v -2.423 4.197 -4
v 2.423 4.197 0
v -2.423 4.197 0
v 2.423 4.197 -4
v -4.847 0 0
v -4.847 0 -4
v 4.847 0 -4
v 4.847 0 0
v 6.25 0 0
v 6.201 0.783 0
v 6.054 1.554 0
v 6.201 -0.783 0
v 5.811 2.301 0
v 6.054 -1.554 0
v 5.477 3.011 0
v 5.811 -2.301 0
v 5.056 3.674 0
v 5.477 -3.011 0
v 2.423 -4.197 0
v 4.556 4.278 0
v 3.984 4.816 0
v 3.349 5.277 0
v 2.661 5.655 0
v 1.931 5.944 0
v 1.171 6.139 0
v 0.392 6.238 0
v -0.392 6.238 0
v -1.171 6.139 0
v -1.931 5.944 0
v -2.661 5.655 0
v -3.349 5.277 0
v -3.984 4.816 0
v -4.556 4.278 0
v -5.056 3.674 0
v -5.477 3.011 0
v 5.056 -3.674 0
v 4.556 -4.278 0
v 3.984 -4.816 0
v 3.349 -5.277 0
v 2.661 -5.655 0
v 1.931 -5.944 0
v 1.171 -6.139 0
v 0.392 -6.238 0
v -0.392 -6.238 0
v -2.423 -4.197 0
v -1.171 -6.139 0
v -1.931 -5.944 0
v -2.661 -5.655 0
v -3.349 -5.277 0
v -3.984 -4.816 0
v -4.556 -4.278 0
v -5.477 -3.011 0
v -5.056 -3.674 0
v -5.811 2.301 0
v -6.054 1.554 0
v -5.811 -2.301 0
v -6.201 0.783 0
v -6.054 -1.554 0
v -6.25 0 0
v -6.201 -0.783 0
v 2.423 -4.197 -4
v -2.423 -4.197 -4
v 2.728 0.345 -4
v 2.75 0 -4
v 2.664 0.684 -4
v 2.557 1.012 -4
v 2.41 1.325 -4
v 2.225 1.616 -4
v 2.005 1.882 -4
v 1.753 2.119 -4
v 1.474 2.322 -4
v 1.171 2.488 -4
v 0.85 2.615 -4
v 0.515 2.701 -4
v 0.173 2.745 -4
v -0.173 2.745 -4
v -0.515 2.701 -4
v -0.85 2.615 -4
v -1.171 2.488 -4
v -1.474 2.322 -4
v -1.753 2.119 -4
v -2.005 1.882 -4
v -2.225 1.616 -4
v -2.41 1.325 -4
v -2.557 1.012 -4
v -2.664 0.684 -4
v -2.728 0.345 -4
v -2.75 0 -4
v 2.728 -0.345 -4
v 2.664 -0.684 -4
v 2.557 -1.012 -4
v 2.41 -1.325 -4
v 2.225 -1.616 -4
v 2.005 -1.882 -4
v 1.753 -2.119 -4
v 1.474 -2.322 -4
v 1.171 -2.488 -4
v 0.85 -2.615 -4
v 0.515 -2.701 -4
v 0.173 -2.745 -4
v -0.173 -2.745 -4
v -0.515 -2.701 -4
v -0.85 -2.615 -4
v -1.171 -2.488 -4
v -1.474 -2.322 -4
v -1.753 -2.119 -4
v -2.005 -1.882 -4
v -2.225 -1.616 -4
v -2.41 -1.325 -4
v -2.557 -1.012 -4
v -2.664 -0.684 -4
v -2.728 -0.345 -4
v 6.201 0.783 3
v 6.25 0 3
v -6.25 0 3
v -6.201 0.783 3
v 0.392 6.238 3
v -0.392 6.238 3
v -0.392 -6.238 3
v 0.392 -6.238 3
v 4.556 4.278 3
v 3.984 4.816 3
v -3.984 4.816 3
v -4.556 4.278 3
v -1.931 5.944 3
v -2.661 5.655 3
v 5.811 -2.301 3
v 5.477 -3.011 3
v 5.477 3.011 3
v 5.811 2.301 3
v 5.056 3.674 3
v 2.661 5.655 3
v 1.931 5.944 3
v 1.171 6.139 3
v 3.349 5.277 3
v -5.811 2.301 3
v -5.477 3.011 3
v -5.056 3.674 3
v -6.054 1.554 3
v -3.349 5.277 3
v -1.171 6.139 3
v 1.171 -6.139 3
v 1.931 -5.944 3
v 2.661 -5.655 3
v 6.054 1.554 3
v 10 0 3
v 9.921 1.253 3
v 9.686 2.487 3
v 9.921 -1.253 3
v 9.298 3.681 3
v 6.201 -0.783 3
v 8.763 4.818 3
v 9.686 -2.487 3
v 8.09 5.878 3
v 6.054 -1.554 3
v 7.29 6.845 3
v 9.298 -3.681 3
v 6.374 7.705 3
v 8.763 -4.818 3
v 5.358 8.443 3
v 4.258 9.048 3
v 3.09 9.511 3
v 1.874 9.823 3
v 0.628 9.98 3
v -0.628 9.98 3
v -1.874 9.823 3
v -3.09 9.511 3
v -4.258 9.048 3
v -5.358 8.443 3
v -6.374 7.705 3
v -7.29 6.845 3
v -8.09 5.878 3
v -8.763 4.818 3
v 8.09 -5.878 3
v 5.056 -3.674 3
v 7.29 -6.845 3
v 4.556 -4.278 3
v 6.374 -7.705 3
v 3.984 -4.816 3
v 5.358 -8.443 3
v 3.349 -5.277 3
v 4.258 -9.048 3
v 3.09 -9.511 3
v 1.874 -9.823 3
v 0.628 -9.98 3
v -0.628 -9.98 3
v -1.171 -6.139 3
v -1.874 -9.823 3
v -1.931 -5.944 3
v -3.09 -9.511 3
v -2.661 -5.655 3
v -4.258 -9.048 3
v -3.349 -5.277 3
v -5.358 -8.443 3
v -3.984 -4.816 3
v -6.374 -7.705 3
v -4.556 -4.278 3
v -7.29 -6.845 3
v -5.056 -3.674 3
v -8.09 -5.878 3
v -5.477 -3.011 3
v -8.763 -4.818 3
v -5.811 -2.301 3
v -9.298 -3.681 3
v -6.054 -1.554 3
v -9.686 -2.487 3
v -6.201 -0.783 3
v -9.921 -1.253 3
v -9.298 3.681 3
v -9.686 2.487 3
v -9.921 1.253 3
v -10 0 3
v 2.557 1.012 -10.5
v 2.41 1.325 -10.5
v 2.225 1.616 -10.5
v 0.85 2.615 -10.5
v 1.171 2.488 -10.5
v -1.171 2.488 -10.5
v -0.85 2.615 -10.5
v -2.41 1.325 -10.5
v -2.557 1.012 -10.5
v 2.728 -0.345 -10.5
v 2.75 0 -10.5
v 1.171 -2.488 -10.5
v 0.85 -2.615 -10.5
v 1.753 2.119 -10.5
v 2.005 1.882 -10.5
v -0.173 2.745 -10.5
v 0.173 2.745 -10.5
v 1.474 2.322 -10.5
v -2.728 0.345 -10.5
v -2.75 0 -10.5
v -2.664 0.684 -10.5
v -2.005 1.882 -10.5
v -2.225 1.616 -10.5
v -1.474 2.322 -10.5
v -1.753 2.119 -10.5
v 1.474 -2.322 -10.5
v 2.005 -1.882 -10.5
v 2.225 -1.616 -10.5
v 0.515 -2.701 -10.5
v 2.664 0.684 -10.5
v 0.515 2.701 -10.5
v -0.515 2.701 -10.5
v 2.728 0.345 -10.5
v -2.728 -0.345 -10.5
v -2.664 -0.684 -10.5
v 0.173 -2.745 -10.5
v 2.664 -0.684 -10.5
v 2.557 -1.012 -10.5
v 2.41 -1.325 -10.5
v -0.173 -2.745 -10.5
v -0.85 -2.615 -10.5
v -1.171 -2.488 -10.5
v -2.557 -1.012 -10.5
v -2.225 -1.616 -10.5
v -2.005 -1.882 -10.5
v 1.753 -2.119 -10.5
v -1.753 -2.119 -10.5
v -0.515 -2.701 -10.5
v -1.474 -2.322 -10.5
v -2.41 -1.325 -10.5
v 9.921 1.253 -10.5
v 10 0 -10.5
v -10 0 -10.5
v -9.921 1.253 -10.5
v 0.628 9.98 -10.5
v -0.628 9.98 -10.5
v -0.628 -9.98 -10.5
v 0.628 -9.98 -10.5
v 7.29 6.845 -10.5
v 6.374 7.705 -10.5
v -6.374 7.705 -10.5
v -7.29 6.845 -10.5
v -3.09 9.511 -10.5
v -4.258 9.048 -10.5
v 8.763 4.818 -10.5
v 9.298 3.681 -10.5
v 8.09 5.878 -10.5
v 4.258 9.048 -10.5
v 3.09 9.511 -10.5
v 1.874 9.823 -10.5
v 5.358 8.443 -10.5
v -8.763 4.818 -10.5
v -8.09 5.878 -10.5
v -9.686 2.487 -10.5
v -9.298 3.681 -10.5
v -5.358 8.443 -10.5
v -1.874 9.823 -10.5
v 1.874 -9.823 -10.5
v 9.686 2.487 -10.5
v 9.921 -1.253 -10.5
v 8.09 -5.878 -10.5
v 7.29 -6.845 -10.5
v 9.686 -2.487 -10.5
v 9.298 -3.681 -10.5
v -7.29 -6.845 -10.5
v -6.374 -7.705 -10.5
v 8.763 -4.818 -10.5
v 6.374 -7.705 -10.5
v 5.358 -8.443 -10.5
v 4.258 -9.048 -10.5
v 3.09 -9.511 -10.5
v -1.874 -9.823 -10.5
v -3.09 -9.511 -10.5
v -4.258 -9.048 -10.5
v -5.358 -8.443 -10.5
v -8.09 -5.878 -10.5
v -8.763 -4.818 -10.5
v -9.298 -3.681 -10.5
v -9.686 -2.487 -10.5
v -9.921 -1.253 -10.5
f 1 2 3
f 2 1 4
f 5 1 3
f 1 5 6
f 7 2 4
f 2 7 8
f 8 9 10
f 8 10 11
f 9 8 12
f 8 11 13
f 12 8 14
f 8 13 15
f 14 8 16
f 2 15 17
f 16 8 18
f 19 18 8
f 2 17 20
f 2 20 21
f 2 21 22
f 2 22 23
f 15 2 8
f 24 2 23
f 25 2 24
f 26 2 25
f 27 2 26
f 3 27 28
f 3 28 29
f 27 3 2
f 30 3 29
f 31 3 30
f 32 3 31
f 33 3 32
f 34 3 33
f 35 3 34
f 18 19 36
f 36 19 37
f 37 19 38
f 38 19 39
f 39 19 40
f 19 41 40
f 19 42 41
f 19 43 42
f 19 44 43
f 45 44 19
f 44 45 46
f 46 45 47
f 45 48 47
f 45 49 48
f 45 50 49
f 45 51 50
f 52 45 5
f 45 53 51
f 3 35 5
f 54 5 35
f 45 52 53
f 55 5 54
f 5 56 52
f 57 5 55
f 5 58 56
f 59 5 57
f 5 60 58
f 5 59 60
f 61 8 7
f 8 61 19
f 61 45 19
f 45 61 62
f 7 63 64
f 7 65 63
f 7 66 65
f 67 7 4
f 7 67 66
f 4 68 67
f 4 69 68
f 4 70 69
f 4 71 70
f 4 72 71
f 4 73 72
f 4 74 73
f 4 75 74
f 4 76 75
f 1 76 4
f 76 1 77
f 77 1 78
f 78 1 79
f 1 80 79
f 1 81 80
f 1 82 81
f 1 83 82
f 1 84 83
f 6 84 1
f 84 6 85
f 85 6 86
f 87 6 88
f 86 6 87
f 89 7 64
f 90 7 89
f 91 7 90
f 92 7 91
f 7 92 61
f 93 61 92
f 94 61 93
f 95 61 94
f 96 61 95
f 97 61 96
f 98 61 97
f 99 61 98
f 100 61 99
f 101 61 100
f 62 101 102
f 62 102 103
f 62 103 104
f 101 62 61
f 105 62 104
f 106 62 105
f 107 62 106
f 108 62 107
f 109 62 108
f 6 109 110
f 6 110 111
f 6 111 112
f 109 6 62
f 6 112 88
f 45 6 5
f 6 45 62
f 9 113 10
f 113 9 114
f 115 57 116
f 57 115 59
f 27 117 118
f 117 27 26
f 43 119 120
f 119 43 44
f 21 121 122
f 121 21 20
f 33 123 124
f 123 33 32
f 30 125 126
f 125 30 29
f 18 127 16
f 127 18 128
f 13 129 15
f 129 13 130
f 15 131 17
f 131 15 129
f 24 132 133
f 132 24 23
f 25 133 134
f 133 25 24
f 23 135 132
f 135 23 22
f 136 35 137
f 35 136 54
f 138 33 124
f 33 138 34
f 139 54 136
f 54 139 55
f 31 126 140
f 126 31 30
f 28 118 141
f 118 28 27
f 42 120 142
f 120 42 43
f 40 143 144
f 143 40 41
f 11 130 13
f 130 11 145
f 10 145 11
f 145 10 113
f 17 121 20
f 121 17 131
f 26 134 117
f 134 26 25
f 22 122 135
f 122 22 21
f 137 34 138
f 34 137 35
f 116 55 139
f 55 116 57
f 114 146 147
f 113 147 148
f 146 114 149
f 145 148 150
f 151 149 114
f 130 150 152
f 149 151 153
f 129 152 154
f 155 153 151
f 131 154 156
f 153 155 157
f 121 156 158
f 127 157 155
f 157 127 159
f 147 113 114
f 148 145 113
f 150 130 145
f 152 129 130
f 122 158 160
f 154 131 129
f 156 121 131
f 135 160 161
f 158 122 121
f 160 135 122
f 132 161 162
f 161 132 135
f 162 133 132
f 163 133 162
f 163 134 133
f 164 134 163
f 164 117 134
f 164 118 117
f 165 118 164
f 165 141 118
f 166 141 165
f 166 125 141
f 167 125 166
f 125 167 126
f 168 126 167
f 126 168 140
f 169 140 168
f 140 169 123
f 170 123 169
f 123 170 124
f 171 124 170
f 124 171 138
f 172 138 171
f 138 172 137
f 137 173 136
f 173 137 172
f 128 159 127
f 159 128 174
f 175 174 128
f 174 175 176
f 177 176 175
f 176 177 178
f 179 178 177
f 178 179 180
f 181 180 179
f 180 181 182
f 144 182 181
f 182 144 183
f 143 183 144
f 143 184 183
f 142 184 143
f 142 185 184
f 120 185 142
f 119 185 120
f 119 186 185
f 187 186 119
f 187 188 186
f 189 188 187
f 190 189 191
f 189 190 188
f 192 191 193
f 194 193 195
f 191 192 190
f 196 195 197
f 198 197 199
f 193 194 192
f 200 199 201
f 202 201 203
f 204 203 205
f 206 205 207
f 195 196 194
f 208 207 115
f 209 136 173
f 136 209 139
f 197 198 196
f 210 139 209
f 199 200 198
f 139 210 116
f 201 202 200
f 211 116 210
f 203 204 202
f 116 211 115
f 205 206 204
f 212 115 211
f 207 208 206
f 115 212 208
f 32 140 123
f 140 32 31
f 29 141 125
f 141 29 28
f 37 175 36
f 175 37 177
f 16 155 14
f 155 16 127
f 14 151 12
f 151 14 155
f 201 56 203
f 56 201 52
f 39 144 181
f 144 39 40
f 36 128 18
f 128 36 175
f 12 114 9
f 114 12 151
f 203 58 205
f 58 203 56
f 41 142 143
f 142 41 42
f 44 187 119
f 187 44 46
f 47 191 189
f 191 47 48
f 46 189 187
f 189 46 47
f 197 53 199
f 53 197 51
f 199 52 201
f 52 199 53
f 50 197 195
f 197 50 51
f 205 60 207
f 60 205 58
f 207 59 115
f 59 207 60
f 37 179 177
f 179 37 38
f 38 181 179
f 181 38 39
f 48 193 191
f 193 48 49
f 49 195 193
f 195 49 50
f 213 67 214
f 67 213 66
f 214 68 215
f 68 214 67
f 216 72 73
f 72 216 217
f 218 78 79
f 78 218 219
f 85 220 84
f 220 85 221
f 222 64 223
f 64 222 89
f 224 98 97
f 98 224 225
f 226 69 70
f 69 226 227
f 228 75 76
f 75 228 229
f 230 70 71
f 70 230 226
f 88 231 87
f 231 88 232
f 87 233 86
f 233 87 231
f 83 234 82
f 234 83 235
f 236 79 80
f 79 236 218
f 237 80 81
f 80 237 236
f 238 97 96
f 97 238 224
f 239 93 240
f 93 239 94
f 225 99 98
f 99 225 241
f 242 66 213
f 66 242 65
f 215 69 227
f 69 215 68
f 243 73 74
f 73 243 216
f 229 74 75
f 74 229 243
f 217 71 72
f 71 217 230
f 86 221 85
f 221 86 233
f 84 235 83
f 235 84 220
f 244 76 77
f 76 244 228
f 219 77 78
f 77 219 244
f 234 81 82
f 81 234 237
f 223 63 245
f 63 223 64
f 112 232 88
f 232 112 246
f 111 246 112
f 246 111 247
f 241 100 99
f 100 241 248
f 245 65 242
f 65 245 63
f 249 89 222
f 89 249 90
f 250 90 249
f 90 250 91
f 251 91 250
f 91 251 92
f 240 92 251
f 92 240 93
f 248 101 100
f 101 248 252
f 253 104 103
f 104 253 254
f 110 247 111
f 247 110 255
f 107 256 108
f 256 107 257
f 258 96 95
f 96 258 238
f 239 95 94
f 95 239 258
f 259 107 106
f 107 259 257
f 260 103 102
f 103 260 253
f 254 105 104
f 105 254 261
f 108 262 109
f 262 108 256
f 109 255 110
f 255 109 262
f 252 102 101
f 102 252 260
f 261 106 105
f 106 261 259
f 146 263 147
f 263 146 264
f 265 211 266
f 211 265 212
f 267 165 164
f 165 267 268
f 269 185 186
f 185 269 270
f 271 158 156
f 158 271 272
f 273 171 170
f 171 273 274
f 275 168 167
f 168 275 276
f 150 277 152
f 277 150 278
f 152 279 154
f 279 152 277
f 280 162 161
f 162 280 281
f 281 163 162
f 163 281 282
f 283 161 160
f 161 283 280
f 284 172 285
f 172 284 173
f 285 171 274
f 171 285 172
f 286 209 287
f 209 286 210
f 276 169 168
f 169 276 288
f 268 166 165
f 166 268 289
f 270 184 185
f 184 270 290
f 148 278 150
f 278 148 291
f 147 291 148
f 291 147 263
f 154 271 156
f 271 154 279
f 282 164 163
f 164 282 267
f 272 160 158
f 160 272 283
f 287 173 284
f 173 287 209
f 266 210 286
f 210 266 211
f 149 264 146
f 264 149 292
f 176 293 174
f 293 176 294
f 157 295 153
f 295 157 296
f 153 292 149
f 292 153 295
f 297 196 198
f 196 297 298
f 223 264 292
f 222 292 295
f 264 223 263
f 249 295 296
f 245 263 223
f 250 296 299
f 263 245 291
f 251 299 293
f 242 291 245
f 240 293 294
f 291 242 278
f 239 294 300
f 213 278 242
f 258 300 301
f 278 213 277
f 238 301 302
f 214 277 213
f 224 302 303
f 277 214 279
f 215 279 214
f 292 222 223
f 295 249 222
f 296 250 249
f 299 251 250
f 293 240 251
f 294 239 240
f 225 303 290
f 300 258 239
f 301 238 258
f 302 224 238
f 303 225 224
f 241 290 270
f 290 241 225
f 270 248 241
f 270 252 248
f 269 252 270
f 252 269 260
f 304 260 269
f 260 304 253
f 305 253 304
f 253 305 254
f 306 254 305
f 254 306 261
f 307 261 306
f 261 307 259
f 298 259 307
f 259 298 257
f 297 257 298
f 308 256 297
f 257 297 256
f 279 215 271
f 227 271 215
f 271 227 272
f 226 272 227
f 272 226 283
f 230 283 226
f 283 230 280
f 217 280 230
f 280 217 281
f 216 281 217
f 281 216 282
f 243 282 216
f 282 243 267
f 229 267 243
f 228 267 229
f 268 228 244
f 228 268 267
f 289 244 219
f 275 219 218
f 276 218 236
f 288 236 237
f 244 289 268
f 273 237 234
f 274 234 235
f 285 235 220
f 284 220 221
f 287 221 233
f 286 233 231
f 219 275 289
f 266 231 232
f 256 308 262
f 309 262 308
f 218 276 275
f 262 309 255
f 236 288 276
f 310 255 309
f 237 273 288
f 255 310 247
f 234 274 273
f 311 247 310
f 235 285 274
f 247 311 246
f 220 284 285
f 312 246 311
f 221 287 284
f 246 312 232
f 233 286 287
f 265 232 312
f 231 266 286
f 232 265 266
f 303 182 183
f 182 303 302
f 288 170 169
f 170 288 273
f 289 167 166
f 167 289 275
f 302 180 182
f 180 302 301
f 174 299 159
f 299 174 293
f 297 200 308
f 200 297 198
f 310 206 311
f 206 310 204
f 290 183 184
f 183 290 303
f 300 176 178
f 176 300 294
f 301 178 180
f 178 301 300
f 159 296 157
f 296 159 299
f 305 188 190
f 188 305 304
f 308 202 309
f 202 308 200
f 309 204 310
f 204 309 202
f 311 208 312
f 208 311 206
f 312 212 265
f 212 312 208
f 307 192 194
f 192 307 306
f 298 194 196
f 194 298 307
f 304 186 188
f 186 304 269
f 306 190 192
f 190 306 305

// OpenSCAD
$fn = 50;


difference() {
	union() {
		translate(v = [0, 0, -10.5000000000]) {
			cylinder(h = 13.5000000000, r = 10.0000000000);
		}
	}
	union() {
		translate(v = [0, 0, 0]) {
			rotate(a = [0, 0, 0]) {
				difference() {
					union() {
						translate(v = [0, 0, -4]) {
							linear_extrude(height = 4) {
								polygon(points = [[4.8468000000, 0.0000000000], [2.4234000000, 4.1974519271], [-2.4234000000, 4.1974519271], [-4.8468000000, 0.0000000000], [-2.4234000000, -4.1974519271], [2.4234000000, -4.1974519271]]);
							}
						}
					}
					union();
				}
			}
		}
		#cylinder(h = 3, r = 6.2500000000);
		#translate(v = [0, 0, -100.0000000000]) {
			cylinder(h = 200, r = 2.7500000000);
		}
	}
}
